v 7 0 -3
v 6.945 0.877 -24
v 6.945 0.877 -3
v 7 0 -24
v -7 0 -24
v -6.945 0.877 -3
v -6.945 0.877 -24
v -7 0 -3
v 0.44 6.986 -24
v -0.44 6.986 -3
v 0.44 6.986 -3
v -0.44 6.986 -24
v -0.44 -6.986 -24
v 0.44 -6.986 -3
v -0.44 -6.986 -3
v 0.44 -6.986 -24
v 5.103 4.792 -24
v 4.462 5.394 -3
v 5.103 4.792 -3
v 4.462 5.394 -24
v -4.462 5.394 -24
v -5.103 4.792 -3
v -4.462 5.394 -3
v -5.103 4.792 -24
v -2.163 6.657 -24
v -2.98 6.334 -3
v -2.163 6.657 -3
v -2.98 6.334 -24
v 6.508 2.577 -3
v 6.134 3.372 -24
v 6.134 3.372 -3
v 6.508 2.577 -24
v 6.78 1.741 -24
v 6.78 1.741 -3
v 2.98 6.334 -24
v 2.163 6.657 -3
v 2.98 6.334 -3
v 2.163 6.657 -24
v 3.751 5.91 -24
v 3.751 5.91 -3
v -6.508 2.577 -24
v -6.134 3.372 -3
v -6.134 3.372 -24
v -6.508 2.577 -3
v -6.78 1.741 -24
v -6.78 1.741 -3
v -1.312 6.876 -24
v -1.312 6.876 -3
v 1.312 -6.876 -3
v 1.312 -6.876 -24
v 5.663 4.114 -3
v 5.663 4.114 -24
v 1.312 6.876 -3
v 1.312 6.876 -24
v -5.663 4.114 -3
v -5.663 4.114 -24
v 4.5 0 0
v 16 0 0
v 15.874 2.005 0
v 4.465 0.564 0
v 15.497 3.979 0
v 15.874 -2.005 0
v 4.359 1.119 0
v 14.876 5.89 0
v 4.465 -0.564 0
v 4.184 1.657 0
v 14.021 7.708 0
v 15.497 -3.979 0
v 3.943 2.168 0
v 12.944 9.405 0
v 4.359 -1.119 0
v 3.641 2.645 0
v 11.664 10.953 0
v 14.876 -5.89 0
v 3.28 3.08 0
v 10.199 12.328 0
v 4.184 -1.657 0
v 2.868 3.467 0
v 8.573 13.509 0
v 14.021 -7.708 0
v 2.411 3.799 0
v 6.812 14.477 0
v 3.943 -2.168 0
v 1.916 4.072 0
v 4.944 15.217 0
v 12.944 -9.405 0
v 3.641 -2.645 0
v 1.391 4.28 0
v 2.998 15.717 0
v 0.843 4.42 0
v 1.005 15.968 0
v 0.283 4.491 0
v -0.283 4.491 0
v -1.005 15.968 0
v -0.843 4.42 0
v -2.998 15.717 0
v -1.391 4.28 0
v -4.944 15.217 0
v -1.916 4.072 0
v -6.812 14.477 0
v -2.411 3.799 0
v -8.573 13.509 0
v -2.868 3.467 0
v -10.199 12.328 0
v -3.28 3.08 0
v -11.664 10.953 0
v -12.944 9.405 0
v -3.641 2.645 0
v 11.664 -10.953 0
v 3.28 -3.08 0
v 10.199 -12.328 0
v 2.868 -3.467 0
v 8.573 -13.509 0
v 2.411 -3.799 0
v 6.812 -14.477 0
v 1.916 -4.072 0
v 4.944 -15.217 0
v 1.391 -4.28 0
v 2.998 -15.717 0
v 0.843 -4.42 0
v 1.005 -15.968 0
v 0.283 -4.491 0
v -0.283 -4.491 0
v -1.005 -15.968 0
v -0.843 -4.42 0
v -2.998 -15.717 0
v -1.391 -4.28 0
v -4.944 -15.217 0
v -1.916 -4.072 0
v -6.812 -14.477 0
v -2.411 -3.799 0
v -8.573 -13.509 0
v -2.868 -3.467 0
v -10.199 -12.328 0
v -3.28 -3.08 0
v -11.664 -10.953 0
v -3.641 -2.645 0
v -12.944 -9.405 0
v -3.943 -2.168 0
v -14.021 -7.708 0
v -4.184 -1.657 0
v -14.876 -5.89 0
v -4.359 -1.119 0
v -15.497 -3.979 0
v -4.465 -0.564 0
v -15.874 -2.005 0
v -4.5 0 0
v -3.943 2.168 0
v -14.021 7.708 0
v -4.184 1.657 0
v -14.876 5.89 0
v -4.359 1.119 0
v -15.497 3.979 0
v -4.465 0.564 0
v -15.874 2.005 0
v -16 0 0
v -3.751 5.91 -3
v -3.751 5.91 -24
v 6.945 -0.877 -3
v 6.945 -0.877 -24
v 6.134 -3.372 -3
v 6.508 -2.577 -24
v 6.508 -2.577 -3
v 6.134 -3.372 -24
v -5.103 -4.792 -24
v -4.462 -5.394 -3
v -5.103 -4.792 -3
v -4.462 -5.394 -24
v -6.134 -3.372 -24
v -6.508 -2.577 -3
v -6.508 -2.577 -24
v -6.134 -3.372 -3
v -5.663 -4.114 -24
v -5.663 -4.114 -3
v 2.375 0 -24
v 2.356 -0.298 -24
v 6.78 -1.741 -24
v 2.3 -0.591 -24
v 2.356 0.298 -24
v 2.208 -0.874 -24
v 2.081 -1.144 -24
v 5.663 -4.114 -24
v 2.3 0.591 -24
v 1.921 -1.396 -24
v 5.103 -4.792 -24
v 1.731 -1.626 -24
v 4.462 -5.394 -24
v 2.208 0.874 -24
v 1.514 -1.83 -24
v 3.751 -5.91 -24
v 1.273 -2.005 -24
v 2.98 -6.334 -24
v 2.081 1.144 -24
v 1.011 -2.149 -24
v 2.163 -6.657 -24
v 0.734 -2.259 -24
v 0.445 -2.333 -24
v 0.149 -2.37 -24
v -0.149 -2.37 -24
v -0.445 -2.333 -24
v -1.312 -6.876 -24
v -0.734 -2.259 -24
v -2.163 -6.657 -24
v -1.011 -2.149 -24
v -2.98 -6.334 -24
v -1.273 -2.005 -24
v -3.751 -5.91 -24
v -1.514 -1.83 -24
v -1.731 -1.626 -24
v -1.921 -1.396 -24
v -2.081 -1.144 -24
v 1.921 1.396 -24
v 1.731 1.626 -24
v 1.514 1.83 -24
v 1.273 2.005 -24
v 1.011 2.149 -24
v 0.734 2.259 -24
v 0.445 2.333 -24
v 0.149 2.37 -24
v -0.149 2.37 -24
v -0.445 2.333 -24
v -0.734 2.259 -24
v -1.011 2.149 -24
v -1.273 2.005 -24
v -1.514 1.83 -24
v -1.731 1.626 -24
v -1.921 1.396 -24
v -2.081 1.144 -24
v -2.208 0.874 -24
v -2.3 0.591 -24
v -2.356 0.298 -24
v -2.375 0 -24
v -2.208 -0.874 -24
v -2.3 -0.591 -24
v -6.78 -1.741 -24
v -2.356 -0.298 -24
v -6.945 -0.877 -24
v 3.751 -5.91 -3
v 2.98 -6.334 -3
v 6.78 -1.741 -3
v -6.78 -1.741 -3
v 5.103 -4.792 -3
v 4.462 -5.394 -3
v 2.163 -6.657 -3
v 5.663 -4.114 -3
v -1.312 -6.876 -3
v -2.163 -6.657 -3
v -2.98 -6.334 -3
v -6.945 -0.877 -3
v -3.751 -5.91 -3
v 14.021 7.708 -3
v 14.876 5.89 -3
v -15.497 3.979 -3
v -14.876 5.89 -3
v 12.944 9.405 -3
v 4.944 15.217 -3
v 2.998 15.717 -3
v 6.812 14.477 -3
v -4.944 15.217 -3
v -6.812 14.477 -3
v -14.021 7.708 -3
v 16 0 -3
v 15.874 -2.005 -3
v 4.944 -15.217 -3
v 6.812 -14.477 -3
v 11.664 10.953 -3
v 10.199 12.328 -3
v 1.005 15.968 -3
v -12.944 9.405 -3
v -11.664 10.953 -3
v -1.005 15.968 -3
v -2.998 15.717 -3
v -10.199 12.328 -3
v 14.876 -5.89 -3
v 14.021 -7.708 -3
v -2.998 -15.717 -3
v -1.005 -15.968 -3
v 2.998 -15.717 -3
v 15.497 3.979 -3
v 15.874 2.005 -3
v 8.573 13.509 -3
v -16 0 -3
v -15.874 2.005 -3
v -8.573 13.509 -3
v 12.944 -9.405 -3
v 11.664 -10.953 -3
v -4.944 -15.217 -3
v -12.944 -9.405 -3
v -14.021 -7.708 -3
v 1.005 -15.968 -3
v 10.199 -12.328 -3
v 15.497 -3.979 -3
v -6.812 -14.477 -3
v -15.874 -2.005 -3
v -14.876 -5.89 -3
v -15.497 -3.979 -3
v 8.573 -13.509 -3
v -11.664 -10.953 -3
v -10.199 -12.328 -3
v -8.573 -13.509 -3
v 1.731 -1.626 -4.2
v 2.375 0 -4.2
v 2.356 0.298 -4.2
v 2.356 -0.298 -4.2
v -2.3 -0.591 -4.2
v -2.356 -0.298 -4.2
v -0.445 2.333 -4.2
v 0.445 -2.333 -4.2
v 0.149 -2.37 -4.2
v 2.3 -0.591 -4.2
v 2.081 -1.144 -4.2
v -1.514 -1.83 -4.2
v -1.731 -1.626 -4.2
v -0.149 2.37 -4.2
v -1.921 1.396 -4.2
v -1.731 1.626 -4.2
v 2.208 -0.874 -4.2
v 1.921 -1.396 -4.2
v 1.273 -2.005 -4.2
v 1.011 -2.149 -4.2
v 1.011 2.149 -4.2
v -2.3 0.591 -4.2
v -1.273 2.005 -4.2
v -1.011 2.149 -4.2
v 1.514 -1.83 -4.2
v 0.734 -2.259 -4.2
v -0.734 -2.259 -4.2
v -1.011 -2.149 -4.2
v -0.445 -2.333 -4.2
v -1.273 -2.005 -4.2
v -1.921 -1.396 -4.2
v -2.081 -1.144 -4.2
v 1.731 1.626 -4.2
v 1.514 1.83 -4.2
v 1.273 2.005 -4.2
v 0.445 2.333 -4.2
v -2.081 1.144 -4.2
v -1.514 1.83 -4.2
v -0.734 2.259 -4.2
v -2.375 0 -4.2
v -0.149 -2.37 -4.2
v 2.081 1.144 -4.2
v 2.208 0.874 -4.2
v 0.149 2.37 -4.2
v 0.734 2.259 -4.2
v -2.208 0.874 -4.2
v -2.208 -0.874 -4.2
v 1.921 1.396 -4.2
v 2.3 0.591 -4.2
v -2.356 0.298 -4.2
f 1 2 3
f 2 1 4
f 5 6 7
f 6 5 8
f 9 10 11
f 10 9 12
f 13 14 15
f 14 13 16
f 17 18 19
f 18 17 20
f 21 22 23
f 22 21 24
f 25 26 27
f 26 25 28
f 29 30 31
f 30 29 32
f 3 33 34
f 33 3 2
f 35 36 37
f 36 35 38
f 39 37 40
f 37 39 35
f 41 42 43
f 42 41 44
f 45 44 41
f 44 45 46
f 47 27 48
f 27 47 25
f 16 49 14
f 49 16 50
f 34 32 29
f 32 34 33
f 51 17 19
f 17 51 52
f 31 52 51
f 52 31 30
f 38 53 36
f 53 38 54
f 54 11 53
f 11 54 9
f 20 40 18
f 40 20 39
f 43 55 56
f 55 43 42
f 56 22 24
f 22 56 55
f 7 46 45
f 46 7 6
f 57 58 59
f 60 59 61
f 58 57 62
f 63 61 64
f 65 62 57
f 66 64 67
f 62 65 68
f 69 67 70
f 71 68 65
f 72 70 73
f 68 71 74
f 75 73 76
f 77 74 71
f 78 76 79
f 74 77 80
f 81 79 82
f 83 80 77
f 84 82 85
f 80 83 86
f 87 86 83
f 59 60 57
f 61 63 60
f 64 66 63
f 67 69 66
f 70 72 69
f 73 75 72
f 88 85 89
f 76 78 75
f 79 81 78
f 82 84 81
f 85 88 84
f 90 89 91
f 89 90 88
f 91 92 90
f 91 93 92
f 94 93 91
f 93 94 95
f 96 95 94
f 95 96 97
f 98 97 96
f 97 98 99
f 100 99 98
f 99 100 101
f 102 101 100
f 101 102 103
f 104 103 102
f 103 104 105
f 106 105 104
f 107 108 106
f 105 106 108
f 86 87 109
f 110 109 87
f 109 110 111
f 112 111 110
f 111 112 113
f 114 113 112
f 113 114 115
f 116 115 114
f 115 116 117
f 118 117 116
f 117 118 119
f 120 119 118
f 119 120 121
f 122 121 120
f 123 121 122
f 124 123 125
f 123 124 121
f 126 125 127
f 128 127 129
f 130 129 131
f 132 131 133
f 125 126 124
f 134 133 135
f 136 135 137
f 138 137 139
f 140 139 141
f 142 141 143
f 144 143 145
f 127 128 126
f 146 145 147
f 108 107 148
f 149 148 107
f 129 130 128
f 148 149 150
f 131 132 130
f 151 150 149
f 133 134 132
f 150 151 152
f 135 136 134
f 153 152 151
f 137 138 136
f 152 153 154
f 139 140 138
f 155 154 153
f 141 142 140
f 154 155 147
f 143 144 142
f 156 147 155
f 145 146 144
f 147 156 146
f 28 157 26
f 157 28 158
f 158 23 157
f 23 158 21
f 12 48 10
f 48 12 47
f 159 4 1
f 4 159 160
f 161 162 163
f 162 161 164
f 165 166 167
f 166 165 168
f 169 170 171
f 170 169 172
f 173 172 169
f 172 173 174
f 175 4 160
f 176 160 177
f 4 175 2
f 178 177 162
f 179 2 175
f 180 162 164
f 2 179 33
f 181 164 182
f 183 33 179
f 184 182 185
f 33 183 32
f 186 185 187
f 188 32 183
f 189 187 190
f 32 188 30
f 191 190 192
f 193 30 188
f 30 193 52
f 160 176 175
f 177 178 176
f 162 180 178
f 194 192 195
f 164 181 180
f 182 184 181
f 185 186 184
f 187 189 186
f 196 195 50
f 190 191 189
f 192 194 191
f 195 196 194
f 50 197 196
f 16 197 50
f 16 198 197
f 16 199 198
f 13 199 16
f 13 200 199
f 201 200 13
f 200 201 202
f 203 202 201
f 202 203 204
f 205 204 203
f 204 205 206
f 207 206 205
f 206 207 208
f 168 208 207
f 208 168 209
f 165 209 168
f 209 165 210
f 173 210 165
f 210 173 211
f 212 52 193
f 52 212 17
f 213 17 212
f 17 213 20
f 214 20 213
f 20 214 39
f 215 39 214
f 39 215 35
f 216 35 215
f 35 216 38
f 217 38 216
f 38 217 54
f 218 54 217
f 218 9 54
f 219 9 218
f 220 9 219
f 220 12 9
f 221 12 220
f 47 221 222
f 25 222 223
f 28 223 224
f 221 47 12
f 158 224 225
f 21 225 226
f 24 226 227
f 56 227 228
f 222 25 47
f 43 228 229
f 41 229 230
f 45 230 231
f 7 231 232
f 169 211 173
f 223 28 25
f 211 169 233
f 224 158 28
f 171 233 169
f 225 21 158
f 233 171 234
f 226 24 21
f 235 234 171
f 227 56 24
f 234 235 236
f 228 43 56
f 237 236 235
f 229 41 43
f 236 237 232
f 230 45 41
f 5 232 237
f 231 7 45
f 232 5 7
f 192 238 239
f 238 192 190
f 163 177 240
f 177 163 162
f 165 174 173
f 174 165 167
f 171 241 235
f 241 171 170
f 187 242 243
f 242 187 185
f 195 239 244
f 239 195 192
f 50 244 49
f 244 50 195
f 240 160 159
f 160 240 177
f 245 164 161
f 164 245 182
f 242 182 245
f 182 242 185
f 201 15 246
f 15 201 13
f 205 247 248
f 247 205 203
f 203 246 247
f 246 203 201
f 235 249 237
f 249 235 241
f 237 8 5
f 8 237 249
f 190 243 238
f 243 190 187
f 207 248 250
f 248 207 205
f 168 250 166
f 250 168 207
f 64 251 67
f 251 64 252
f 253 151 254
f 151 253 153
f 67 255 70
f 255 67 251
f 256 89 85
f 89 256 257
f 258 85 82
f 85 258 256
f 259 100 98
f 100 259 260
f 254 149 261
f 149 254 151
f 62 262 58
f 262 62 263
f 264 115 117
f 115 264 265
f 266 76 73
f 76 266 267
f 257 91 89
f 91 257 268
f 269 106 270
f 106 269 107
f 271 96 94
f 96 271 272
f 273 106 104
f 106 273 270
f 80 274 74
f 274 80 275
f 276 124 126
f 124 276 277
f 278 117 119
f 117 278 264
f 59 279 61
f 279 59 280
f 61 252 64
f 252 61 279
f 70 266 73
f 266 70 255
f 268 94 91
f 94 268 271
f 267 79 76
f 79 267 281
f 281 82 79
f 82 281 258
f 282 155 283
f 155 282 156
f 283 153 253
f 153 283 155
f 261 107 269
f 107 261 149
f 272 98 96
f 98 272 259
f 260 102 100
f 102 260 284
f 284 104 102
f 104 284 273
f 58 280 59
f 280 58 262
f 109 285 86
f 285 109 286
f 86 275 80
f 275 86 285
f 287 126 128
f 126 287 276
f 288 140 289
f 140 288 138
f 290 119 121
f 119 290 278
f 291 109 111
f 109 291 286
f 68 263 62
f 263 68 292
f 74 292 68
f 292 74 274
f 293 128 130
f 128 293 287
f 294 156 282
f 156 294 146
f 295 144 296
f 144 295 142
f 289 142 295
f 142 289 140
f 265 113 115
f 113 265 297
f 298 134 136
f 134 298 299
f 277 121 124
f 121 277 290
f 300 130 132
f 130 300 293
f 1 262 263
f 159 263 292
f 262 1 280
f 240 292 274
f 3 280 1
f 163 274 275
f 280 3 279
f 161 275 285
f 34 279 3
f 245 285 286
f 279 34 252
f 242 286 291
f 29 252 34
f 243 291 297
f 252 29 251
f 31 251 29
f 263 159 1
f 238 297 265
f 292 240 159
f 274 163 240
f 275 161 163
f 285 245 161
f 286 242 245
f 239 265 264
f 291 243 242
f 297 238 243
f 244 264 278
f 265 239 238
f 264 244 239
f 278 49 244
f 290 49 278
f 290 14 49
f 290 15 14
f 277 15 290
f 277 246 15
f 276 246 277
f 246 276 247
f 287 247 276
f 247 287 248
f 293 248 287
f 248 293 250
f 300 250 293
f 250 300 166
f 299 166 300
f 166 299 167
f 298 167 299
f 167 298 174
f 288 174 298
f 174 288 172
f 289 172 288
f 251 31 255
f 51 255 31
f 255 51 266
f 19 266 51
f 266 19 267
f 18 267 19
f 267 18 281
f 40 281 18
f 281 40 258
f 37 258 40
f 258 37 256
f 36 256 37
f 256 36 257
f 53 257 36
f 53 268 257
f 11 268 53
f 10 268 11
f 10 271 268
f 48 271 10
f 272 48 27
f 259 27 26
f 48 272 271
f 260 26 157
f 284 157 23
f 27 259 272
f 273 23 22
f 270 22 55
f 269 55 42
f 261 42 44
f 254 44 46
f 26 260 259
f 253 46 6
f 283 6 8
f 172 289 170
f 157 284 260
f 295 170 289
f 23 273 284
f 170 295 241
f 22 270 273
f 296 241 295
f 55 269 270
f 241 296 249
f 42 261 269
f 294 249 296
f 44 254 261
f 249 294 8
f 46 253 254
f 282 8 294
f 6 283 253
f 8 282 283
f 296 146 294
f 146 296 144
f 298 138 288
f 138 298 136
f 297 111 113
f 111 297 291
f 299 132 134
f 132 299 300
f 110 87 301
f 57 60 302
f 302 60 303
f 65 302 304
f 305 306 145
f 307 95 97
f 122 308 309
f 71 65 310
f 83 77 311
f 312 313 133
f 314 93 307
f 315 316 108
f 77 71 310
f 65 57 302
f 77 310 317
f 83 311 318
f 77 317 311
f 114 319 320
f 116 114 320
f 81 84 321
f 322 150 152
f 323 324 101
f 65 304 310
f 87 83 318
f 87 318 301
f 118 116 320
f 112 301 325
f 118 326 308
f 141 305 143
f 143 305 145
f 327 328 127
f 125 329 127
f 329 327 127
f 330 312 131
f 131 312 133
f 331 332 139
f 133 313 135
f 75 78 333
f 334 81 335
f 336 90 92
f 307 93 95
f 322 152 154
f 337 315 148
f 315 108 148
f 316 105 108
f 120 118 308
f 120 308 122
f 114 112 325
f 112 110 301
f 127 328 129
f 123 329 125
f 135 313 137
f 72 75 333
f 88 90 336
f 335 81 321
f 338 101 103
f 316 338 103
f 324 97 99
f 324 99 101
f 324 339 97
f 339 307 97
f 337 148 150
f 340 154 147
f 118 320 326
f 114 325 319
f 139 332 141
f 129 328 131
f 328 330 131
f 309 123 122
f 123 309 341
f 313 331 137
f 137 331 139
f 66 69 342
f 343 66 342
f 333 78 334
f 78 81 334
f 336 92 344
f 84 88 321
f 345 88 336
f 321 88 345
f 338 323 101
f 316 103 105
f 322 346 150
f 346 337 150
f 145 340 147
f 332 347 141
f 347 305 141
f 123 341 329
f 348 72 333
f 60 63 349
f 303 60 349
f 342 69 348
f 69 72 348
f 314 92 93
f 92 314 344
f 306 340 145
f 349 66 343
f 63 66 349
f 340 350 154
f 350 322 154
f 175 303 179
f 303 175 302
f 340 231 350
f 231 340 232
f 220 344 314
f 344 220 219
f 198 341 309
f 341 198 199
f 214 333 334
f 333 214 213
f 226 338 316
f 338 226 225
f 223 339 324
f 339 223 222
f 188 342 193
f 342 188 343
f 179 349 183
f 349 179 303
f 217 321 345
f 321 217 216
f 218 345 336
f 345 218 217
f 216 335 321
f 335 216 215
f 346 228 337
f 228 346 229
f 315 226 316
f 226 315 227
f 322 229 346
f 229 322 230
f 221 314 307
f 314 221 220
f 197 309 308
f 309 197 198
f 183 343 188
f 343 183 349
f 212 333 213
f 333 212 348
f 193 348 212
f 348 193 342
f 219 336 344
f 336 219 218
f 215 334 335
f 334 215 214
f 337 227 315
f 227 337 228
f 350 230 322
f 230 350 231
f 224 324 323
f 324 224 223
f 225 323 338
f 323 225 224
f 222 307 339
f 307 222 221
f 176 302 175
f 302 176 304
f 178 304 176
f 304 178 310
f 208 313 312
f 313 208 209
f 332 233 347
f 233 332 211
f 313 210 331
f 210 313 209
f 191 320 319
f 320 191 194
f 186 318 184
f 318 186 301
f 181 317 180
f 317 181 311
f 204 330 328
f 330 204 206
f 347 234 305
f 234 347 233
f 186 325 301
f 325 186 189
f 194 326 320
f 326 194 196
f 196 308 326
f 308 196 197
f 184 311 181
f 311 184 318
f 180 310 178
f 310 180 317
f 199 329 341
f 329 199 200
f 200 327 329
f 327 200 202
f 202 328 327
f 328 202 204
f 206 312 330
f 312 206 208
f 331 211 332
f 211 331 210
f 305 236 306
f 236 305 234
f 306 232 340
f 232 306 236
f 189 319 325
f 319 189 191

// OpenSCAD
$fn = 50;


difference() {
	union() {
		translate(v = [0, 0, -24.0000000000]) {
			cylinder(h = 24, r = 7.0000000000);
		}
		translate(v = [0, 0, -3.0000000000]) {
			cylinder(h = 3, r = 16.0000000000);
		}
	}
	union() {
		translate(v = [0, 0, 0]) {
			rotate(a = [0, 0, 0]) {
				difference() {
					union() {
						#translate(v = [0, 0, -24.0000000000]) {
							cylinder(h = 24, r = 2.2500000000);
						}
						#translate(v = [0, 0, -4.2000000000]) {
							cylinder(h = 4.2000000000, r = 7.0000000000, r1 = 2.3750000000, r2 = 4.5000000000);
						}
						#translate(v = [0, 0, -24.0000000000]) {
							cylinder(h = 24, r = 2.3750000000);
						}
						#translate(v = [0, 0, -24.0000000000]) {
							cylinder(h = 24, r = 2.2500000000);
						}
					}
					union();
				}
			}
		}
	}
}
